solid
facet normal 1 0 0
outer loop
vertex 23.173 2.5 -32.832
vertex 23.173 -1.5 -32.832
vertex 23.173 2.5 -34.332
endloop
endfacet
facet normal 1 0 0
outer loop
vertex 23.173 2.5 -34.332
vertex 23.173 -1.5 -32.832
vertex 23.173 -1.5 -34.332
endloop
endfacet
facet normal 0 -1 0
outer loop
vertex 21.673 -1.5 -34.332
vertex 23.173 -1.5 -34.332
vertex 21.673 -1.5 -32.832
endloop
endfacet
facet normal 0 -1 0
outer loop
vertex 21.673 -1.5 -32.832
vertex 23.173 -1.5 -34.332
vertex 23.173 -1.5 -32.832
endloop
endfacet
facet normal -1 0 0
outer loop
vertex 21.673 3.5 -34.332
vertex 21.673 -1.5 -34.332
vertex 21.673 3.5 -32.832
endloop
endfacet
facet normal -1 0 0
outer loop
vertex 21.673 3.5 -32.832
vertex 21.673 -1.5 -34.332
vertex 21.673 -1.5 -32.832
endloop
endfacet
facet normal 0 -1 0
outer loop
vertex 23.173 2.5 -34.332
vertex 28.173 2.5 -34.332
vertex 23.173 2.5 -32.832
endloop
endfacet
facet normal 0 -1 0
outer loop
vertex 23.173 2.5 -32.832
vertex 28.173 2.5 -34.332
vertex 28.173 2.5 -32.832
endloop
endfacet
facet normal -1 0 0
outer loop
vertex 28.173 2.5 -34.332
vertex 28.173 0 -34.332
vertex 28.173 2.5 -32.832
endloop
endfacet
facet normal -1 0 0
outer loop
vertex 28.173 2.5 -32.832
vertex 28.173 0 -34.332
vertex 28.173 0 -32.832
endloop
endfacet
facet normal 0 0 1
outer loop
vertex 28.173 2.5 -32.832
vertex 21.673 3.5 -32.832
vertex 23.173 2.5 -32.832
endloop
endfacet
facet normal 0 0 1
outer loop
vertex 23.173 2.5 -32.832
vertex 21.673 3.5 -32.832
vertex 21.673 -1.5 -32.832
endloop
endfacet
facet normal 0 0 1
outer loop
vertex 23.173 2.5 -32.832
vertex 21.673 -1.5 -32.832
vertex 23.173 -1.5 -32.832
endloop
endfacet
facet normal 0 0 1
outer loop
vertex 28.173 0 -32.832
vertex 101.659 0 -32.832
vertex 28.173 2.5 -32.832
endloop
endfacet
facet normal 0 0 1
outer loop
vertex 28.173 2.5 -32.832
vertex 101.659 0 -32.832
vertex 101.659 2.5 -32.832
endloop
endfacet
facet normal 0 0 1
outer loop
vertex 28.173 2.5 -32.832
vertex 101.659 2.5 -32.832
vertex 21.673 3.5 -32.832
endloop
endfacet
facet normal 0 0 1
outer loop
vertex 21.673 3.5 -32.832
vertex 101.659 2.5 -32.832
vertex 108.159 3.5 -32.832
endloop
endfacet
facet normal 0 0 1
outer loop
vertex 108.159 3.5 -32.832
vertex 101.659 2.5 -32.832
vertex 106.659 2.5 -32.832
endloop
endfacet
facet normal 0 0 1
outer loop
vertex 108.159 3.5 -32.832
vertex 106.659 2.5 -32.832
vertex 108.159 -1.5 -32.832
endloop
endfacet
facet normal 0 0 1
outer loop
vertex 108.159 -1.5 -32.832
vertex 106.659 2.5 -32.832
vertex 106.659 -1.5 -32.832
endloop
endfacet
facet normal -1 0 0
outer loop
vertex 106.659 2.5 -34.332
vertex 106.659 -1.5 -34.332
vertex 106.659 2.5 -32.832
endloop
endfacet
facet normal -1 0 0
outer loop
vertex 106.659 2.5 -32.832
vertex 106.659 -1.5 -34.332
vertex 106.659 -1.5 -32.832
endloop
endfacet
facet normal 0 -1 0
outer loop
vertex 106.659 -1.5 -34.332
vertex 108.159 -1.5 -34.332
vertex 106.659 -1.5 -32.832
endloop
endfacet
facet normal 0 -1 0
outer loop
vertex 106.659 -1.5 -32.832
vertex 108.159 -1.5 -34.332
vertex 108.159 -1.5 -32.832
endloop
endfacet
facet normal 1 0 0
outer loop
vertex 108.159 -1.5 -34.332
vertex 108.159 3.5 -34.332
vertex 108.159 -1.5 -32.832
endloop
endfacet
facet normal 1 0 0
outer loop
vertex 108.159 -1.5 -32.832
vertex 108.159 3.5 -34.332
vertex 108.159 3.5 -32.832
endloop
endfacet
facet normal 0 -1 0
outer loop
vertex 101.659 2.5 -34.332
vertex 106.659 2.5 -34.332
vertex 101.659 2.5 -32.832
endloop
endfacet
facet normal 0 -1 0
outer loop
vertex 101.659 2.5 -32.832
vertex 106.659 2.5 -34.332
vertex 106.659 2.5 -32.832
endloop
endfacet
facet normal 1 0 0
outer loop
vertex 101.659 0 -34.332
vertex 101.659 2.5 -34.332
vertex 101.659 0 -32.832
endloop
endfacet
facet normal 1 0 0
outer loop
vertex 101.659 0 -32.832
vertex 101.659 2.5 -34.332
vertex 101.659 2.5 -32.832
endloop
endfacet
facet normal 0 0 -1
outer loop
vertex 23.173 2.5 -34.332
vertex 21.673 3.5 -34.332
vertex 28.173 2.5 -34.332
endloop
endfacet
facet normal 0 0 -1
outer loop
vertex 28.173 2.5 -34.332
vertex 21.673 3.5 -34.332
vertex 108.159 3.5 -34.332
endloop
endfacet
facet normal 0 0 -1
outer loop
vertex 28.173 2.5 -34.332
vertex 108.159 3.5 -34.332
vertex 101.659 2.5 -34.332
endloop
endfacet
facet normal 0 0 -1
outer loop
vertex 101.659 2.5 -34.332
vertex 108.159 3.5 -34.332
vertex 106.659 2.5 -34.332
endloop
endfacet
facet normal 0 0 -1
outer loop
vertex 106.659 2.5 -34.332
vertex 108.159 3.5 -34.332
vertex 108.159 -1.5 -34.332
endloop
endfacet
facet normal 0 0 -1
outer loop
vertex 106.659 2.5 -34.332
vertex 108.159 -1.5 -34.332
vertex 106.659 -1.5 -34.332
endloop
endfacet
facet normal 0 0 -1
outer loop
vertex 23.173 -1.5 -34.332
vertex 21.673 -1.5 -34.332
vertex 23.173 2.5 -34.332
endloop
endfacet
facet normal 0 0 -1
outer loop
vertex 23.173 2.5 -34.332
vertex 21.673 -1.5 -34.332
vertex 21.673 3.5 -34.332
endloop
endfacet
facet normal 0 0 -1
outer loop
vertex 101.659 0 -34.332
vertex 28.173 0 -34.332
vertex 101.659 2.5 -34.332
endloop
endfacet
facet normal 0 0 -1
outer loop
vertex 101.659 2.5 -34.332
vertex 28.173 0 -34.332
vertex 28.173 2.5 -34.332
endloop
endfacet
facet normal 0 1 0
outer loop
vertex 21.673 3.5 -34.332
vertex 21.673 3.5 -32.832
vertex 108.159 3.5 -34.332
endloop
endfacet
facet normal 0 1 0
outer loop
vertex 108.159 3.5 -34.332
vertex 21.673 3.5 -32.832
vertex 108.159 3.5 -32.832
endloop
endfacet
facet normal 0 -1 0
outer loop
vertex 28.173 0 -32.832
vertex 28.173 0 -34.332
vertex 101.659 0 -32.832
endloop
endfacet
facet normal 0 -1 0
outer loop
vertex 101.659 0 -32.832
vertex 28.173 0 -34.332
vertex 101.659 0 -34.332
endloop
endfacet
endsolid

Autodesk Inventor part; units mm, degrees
ref_plane "YZ Plane" through (0, 0, 0) normal (1, 0, 0) x (0, 1, 0)
ref_plane "XZ Plane" through (0, 0, 0) normal (0, 1, 0) x (-1, 0, 0)
ref_plane "XY Plane" through (0, 0, 0) normal (0, 0, 1) x (1, 0, 0)
sketch "Sketch1" plane through (0, 0, 0) normal (0, 1, 0) x (-1, 0, 0)
  line L0 (-23.173, -32.8319) -> (-106.659, -32.8319)
  line L1 (-106.659, -32.8319) -> (-106.659, -34.3319)
  line L2 (-106.659, -34.3319) -> (-23.173, -34.3319)
  line L3 (-23.173, -34.3319) -> (-23.173, -32.8319)
  point P0 (0, 0)
  dimension "d0" = 83.486
  dimension "d1" = 1.5
extrude "Extrusion1" add sketch "Sketch1" along normal blind 3.5
ref_plane "Work Plane1" through (64.916, 0, -32.8319) normal (1, 0, 0) x (0, 0, -1)
sketch "Sketch2" plane through (23.173, 0, -32.8319) normal (0, 0, 1) x (1, 0, 0)
  line L0 (83.486, 0) -> (78.486, 0)
  line L1 (78.486, 0) -> (78.486, 2.5)
  line L2 (78.486, 2.5) -> (83.486, 2.5)
  line L3 (83.486, 2.5) -> (83.486, 0)
  point P0 (-23.173, 0)
  dimension "d4" = 2.5
  dimension "d5" = 5
extrude "Extrusion2" cut sketch "Sketch2" against normal blind 3.5
sketch "Sketch3" plane through (23.173, 3.5, -32.8319) normal (0, 0, 1) x (1, 0, 0)
  line L0 (0, 0) -> (83.486, 0) projected
  line L1 (83.486, 0) -> (84.986, 0)
  line L2 (84.986, 0) -> (84.986, -5)
  line L3 (84.986, -5) -> (83.486, -5)
  line L4 (83.486, -5) -> (83.486, 0)
  point P0 (-23.173, -3.5)
  dimension "d8" = 1.5
  dimension "d11" = 5
extrude "Extrusion3" add sketch "Sketch3" against normal up to surface (1.5 mm away)
mirror "Mirror1" about plane through (64.916, 0, -32.8319) normal (1, 0, 0) of "Extrusion3", "Extrusion2"
properties part number "Bar"
